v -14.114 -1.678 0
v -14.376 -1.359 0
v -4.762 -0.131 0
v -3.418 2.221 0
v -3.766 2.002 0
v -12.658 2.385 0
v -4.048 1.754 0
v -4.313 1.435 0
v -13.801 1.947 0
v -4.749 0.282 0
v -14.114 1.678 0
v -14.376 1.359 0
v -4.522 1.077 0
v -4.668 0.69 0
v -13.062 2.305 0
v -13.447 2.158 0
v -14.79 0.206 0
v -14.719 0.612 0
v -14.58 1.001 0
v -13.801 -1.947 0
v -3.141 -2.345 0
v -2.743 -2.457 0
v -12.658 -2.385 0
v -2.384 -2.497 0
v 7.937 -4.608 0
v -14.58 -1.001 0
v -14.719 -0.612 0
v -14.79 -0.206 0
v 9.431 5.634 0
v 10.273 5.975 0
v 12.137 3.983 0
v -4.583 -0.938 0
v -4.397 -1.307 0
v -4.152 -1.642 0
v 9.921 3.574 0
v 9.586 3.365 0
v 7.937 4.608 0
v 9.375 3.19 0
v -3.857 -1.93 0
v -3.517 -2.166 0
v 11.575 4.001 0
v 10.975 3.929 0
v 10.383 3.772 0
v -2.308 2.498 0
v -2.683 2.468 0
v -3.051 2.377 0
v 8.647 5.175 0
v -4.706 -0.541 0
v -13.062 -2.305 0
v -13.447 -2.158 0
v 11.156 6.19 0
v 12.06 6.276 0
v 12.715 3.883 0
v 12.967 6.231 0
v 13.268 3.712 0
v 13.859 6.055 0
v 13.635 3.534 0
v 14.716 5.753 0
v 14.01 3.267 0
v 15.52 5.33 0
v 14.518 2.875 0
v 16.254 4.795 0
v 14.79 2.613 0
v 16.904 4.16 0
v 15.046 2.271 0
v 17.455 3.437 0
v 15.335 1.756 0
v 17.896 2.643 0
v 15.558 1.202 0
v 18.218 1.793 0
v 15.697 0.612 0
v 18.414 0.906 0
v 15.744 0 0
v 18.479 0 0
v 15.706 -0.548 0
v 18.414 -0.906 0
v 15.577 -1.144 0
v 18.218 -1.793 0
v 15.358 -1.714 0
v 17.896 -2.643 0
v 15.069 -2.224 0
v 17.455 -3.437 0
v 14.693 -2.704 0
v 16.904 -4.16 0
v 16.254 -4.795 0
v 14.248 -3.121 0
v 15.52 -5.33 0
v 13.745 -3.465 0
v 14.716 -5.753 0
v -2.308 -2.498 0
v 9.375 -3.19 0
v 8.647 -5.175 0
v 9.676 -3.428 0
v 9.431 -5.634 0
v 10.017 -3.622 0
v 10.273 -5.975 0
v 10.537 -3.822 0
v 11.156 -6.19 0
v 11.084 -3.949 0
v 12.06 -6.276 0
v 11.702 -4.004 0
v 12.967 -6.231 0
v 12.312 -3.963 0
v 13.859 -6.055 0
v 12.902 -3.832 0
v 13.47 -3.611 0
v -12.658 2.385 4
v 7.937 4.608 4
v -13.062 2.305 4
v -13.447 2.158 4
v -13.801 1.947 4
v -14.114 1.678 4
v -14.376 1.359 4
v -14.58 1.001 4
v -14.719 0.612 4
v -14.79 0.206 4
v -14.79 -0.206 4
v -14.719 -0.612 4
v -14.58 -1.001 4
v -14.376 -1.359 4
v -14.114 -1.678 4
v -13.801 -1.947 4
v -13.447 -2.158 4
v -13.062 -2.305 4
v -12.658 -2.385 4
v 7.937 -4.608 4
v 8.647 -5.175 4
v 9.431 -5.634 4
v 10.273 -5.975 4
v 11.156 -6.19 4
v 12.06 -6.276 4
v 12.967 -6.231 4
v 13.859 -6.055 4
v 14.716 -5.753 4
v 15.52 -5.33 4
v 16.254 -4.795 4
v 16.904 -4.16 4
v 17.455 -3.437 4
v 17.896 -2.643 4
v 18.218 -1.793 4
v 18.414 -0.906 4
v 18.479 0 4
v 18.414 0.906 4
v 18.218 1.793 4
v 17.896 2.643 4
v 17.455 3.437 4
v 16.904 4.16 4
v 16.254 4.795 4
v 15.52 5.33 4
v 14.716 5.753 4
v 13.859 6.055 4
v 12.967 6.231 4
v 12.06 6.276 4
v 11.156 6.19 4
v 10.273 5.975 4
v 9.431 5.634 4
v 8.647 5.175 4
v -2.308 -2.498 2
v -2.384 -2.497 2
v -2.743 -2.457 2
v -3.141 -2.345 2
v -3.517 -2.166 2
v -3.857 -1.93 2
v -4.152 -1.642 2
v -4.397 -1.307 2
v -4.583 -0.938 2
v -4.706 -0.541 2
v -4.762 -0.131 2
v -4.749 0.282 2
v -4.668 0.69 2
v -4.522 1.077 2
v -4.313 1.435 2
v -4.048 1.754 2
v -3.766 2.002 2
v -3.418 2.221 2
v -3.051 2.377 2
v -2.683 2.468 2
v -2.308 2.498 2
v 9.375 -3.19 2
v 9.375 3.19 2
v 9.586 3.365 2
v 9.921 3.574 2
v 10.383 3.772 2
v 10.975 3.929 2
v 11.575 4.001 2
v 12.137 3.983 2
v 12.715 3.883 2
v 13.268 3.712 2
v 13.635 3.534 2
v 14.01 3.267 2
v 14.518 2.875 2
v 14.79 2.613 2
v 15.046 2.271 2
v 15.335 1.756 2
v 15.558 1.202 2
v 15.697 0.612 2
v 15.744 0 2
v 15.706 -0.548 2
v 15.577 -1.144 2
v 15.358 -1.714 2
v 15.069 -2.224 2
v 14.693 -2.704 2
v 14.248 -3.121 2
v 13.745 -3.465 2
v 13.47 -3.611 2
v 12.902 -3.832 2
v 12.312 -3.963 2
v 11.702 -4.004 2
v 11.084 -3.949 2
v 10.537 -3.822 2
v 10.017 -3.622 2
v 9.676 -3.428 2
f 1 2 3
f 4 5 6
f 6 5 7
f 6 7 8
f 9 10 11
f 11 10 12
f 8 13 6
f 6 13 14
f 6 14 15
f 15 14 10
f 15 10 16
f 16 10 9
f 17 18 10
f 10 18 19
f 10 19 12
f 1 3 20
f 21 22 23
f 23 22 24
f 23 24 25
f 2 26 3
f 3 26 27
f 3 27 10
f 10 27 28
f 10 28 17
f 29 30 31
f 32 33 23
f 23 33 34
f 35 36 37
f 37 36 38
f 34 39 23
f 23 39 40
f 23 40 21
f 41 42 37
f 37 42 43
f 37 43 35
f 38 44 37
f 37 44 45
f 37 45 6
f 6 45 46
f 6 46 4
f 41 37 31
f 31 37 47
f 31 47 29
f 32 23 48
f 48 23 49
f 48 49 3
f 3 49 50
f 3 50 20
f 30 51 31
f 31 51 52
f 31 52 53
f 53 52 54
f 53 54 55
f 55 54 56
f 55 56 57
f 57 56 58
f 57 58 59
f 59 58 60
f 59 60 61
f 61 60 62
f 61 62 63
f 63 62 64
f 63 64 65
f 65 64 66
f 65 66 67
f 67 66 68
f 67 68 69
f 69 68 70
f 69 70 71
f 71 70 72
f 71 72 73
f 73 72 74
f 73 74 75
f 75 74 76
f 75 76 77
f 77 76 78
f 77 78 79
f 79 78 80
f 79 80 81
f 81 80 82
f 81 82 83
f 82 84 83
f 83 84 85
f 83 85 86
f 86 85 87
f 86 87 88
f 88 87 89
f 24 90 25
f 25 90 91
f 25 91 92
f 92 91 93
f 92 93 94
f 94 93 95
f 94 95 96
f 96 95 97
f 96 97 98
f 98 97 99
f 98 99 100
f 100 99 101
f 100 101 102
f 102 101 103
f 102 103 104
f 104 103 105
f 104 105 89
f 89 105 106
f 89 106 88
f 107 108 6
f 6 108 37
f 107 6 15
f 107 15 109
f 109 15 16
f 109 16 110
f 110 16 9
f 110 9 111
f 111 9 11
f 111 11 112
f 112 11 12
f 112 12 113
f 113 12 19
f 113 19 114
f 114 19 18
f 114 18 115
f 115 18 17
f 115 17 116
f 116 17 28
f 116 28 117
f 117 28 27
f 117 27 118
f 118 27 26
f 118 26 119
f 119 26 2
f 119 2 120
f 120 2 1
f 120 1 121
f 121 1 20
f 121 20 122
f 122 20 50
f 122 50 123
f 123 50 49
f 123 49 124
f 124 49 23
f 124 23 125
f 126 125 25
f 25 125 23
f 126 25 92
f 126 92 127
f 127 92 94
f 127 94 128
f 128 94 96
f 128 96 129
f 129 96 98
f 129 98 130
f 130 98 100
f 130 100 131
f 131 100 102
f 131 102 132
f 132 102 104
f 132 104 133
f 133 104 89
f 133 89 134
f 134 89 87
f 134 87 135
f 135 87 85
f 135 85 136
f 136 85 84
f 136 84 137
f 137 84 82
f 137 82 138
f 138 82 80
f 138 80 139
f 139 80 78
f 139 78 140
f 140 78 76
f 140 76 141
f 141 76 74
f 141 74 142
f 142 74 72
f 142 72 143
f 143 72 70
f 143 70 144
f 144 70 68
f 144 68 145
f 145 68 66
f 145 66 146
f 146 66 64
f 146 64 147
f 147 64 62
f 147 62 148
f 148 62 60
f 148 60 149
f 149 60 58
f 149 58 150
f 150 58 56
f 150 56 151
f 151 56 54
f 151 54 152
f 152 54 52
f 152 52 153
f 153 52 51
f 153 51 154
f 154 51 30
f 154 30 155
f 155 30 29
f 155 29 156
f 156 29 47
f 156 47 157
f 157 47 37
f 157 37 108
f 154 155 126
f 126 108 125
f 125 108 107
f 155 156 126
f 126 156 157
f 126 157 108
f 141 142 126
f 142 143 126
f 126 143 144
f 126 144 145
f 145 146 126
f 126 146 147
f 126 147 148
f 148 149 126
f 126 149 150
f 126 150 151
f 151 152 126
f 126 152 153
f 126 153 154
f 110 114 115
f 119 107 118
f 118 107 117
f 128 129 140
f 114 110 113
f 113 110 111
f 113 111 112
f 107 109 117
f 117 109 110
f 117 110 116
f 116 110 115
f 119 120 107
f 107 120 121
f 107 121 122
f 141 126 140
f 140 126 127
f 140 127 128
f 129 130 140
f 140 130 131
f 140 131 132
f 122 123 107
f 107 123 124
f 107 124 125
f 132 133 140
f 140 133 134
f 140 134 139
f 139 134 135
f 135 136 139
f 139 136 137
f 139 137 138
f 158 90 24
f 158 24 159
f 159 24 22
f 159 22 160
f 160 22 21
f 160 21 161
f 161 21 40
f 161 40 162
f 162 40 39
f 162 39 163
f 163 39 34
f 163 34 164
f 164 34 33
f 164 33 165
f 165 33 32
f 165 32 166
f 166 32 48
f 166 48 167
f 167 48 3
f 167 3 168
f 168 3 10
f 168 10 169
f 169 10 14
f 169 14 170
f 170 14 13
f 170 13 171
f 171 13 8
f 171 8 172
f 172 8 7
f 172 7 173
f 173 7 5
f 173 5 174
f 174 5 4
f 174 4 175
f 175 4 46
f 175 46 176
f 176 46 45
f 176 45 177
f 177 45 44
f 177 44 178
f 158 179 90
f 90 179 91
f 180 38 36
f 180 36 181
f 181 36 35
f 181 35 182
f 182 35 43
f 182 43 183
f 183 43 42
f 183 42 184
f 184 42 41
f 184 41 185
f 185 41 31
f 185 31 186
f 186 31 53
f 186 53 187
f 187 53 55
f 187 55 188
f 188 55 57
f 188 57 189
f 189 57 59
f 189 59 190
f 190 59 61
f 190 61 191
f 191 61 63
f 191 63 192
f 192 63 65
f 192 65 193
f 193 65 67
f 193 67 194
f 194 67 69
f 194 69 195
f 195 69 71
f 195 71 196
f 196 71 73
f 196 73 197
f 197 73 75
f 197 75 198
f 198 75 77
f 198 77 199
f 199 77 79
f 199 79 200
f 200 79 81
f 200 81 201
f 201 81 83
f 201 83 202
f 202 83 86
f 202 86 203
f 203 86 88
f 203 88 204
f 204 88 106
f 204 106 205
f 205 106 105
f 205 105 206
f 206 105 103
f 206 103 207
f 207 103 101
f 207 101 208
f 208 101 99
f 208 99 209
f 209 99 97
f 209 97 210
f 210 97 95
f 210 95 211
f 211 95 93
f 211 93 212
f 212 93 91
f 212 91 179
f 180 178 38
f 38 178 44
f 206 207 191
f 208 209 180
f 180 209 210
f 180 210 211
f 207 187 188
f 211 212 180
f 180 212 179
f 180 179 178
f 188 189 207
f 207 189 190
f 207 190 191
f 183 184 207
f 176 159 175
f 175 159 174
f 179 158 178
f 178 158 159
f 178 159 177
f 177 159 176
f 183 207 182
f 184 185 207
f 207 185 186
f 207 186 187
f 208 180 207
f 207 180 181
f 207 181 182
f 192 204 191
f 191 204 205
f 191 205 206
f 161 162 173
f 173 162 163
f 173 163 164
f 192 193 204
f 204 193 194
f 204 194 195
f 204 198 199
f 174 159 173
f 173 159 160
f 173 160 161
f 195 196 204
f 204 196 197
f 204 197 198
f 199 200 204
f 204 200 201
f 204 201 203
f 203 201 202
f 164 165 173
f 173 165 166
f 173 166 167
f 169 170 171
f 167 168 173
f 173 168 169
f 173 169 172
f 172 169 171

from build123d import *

# Parameters (mm, degrees)
BOSS_EXTRUDE6_DEPTH = 4
CUT_EXTRUDE1_DEPTH  = 2


with BuildPart() as part:
    # Sketch2 → Boss-Extrude6 (new body)
    with BuildSketch(Plane.XY):
        with BuildLine():
            Line((7.936945185, 4.607509822), (-12.657523049, 2.384648727))
            ThreePointArc((-12.657523049, 2.384648727), (-14.798635322, 0), (-12.657523049, -2.384648727))
            Line((-12.657523049, -2.384648727), (7.936945185, -4.607509822))
            ThreePointArc((7.936945185, -4.607509822), (18.479455181, 0), (7.936945185, 4.607509822))
        make_face()
    extrude(amount=BOSS_EXTRUDE6_DEPTH)

    # Sketch1 → Cut-Extrude1 (cut)
    with BuildSketch(Plane.XY):
        with BuildLine():
            Line((-2.308259951, 2.498066053), (9.375044145, 3.190055955))
            add(Edge.make_bspline(
                [(9.375044145, 3.190055955), (9.743762717, 3.535051607), (10.542113364, 3.885379294), (11.739855888, 4.053778423), (12.781606273, 3.904003548), (13.647647588, 3.58835165), (14.172524986, 3.123610305), (14.749448402, 2.727996587), (15.239395752, 2.01553181), (15.653528757, 1.050879588), (15.788992815, -0.000691818), (15.651665108, -1.048112313), (15.246850359, -2.025217286), (14.603250264, -2.863967716), (13.764299096, -3.507779486), (12.787785525, -3.91194775), (11.73820132, -4.051651269), (10.542857019, -3.886335356), (9.743600409, -3.534842939), (9.375044145, -3.190055955)],
                knots=[0, 0, 0, 0, 0.085136877, 0.144403023, 0.203669169, 0.262935434, 0.297502717, 0.322201499, 0.3814676, 0.440733879, 0.5, 0.559266121, 0.6185324, 0.677798501, 0.737064566, 0.796330831, 0.855596977, 0.914863123, 1, 1, 1, 1], degree=3))
            Line((9.375044145, -3.190055955), (-2.308259951, -2.498066053))
            add(Edge.make_bspline(
                [(-2.308259951, -2.498066053), (-2.730270965, -2.498681523), (-3.365255191, -2.317767142), (-4.051947117, -1.791219452), (-4.45450445, -1.266528616), (-4.707556493, -0.655614107), (-4.793872131, 0), (-4.707556493, 0.655614107), (-4.45450445, 1.266528616), (-4.051947117, 1.791219452), (-3.365255191, 2.317767142), (-2.730270965, 2.498681523), (-2.308259951, 2.498066053)],
                knots=[0, 0, 0, 0, 0.162547316, 0.2469105, 0.331273485, 0.415637006, 0.5, 0.584362994, 0.668726515, 0.7530895, 0.837452684, 1, 1, 1, 1], degree=3))
        make_face()
    extrude(amount=CUT_EXTRUDE1_DEPTH, mode=Mode.SUBTRACT)


solid = part.part
